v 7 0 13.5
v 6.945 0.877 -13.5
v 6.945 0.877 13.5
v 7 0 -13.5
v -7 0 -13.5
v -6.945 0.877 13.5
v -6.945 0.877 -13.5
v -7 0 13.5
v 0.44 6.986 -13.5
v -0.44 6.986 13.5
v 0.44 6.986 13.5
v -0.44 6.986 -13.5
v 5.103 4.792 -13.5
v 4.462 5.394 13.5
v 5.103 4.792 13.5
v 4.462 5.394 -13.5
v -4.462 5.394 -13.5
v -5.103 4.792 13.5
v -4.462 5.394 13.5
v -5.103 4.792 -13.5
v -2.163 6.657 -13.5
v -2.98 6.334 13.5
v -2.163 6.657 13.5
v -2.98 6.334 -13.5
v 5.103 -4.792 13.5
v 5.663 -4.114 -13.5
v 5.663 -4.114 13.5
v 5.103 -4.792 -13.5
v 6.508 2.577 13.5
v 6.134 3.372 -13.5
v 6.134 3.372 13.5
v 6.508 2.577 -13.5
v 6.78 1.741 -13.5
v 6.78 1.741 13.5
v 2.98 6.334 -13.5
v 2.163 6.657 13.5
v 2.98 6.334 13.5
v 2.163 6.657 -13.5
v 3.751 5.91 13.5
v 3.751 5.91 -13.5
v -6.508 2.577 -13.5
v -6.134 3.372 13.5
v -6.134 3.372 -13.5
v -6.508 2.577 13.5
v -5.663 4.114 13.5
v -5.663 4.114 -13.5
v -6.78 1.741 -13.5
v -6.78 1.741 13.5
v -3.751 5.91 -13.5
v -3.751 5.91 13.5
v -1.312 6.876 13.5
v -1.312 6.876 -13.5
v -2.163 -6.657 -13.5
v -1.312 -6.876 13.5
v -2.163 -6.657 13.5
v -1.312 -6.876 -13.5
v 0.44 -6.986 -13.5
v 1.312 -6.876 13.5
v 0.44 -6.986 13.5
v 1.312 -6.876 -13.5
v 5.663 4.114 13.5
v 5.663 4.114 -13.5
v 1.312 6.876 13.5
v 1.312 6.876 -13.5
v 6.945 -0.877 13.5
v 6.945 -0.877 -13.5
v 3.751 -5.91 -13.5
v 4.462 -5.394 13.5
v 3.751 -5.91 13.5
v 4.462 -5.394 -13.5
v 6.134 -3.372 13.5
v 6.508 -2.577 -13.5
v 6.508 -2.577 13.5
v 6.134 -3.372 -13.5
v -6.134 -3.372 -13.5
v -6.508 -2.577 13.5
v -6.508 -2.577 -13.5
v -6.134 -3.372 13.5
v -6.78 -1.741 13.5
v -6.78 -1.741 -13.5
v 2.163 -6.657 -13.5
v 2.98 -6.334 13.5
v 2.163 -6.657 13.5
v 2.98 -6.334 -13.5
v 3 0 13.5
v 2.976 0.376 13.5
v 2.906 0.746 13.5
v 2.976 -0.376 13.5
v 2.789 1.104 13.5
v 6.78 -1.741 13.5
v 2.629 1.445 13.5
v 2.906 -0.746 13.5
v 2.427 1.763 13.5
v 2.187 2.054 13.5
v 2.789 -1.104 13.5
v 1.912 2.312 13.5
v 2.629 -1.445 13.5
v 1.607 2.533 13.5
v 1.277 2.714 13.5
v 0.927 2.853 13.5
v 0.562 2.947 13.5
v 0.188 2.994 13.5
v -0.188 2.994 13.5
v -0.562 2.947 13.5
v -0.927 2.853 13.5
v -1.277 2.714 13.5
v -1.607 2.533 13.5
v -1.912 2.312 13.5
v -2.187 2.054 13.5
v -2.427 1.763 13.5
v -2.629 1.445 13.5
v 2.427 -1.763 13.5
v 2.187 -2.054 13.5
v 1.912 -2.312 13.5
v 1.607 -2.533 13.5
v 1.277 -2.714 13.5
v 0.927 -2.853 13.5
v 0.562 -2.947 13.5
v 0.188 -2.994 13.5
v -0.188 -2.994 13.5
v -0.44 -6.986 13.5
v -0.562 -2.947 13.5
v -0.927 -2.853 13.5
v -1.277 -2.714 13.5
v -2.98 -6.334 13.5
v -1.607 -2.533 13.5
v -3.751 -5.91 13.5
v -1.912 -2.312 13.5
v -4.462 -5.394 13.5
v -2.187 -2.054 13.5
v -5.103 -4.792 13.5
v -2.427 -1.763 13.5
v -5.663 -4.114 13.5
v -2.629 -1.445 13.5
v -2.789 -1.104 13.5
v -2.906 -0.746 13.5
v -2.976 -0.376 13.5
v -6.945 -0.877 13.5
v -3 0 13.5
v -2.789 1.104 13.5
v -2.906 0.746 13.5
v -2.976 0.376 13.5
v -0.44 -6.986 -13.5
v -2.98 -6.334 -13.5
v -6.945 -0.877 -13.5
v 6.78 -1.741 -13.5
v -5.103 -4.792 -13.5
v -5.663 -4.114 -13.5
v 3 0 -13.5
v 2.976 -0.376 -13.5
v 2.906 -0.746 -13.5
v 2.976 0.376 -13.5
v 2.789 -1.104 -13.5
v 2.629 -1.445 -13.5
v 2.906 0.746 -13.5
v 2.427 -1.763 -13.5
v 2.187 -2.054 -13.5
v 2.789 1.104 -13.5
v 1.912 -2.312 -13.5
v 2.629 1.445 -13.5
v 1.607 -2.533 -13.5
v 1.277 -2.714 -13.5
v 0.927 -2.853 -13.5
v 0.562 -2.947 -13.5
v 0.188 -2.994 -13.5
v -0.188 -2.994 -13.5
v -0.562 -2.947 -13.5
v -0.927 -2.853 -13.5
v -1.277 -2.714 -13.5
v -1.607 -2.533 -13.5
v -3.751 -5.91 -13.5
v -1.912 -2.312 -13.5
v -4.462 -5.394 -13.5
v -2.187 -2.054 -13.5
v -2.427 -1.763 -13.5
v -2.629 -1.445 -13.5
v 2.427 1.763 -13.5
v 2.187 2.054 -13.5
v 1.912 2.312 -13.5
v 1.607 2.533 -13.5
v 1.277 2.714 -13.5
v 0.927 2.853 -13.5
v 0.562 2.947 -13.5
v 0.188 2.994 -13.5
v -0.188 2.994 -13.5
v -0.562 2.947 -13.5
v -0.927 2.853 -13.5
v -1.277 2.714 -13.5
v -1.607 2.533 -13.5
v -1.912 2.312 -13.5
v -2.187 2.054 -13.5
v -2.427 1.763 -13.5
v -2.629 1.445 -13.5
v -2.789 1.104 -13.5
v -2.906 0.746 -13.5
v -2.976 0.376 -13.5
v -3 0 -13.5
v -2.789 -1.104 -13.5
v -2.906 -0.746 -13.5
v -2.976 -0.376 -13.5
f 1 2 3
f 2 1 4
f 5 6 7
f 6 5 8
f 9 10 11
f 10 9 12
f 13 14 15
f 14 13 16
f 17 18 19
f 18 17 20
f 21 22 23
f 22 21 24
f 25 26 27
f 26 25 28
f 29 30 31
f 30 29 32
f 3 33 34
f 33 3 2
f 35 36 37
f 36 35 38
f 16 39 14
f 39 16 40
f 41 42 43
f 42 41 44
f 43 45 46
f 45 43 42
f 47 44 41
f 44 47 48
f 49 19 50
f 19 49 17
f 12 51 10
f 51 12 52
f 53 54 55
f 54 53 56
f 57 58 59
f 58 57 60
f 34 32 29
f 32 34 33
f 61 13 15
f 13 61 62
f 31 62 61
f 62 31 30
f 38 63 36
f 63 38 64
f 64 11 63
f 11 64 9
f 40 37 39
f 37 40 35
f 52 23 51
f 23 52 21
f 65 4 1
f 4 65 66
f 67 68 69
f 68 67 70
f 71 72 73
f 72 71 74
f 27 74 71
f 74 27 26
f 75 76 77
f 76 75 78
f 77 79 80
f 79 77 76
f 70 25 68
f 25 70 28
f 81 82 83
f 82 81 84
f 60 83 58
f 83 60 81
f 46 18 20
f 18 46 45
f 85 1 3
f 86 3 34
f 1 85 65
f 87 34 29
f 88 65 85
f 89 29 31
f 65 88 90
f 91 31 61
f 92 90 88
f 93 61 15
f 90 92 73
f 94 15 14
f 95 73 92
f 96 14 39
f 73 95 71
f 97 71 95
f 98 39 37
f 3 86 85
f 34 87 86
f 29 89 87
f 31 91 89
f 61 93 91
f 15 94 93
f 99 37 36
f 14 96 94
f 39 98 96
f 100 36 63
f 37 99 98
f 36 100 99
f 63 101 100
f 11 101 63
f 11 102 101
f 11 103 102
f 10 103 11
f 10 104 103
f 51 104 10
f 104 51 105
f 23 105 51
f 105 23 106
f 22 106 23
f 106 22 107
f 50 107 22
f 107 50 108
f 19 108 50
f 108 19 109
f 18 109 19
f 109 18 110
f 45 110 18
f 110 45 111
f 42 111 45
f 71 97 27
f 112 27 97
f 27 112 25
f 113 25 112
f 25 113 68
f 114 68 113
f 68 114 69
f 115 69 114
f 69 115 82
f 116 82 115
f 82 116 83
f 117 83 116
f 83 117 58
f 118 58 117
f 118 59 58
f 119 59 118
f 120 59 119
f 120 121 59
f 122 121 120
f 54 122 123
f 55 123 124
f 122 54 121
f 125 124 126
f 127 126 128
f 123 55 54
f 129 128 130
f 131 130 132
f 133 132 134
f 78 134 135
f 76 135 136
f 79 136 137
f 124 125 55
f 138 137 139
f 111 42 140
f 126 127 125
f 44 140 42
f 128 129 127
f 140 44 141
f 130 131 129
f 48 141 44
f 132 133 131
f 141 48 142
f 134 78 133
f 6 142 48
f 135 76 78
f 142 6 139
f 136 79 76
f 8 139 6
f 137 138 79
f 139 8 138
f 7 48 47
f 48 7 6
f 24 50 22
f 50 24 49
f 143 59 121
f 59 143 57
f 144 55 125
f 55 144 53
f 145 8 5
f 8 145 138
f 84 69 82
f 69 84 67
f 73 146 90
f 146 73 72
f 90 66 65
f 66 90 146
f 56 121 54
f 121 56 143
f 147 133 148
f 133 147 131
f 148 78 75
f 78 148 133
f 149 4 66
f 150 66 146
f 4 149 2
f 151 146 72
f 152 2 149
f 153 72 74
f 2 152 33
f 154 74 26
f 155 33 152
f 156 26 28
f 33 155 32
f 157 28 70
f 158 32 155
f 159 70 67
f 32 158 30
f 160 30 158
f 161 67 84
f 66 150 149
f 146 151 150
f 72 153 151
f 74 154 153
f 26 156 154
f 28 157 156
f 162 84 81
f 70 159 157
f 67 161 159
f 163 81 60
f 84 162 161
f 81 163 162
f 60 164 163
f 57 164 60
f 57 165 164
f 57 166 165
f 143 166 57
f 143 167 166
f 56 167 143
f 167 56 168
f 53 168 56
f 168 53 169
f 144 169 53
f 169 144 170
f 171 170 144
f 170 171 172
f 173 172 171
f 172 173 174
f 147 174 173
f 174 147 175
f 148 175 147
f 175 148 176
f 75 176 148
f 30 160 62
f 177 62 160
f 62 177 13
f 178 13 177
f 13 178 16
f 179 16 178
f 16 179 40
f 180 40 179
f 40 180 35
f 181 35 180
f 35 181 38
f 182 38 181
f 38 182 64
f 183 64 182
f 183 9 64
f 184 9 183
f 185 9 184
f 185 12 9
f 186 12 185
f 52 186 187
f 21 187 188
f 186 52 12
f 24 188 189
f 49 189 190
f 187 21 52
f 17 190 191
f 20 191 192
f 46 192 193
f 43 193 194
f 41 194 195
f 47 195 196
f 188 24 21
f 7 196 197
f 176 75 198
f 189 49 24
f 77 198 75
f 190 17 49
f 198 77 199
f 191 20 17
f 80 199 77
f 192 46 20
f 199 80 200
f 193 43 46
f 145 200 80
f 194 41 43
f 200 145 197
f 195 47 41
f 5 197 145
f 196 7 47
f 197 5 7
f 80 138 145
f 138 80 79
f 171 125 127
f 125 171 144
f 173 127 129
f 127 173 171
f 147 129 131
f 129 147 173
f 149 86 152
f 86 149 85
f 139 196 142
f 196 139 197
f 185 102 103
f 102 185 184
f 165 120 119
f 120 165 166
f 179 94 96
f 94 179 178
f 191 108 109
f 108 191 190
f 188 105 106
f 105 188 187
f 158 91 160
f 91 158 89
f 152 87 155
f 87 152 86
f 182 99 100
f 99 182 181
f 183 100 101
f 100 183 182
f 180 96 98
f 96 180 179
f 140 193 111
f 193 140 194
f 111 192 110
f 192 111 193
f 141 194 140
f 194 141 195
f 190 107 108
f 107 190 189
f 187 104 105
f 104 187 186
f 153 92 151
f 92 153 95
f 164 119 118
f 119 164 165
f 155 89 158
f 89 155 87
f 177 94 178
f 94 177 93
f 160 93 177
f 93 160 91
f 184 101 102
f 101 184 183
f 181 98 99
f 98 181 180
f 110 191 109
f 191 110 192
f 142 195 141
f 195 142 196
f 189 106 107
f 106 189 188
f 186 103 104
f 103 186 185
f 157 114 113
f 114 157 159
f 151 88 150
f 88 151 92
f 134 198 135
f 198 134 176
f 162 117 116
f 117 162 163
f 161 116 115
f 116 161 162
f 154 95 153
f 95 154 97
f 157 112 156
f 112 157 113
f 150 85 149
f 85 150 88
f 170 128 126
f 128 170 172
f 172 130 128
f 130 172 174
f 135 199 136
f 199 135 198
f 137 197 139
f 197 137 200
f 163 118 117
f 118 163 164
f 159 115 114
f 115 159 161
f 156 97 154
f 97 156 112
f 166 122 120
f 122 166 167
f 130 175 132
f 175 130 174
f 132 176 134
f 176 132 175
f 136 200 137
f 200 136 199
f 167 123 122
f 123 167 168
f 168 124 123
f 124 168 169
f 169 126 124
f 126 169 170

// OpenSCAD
$fn = 50;


difference() {
	union() {
		translate(v = [0, 0, -13.5000000000]) {
			cylinder(h = 27, r = 7.0000000000);
		}
	}
	union() {
		translate(v = [0, 0, -100.0000000000]) {
			cylinder(h = 200, r = 3.0000000000);
		}
	}
}
